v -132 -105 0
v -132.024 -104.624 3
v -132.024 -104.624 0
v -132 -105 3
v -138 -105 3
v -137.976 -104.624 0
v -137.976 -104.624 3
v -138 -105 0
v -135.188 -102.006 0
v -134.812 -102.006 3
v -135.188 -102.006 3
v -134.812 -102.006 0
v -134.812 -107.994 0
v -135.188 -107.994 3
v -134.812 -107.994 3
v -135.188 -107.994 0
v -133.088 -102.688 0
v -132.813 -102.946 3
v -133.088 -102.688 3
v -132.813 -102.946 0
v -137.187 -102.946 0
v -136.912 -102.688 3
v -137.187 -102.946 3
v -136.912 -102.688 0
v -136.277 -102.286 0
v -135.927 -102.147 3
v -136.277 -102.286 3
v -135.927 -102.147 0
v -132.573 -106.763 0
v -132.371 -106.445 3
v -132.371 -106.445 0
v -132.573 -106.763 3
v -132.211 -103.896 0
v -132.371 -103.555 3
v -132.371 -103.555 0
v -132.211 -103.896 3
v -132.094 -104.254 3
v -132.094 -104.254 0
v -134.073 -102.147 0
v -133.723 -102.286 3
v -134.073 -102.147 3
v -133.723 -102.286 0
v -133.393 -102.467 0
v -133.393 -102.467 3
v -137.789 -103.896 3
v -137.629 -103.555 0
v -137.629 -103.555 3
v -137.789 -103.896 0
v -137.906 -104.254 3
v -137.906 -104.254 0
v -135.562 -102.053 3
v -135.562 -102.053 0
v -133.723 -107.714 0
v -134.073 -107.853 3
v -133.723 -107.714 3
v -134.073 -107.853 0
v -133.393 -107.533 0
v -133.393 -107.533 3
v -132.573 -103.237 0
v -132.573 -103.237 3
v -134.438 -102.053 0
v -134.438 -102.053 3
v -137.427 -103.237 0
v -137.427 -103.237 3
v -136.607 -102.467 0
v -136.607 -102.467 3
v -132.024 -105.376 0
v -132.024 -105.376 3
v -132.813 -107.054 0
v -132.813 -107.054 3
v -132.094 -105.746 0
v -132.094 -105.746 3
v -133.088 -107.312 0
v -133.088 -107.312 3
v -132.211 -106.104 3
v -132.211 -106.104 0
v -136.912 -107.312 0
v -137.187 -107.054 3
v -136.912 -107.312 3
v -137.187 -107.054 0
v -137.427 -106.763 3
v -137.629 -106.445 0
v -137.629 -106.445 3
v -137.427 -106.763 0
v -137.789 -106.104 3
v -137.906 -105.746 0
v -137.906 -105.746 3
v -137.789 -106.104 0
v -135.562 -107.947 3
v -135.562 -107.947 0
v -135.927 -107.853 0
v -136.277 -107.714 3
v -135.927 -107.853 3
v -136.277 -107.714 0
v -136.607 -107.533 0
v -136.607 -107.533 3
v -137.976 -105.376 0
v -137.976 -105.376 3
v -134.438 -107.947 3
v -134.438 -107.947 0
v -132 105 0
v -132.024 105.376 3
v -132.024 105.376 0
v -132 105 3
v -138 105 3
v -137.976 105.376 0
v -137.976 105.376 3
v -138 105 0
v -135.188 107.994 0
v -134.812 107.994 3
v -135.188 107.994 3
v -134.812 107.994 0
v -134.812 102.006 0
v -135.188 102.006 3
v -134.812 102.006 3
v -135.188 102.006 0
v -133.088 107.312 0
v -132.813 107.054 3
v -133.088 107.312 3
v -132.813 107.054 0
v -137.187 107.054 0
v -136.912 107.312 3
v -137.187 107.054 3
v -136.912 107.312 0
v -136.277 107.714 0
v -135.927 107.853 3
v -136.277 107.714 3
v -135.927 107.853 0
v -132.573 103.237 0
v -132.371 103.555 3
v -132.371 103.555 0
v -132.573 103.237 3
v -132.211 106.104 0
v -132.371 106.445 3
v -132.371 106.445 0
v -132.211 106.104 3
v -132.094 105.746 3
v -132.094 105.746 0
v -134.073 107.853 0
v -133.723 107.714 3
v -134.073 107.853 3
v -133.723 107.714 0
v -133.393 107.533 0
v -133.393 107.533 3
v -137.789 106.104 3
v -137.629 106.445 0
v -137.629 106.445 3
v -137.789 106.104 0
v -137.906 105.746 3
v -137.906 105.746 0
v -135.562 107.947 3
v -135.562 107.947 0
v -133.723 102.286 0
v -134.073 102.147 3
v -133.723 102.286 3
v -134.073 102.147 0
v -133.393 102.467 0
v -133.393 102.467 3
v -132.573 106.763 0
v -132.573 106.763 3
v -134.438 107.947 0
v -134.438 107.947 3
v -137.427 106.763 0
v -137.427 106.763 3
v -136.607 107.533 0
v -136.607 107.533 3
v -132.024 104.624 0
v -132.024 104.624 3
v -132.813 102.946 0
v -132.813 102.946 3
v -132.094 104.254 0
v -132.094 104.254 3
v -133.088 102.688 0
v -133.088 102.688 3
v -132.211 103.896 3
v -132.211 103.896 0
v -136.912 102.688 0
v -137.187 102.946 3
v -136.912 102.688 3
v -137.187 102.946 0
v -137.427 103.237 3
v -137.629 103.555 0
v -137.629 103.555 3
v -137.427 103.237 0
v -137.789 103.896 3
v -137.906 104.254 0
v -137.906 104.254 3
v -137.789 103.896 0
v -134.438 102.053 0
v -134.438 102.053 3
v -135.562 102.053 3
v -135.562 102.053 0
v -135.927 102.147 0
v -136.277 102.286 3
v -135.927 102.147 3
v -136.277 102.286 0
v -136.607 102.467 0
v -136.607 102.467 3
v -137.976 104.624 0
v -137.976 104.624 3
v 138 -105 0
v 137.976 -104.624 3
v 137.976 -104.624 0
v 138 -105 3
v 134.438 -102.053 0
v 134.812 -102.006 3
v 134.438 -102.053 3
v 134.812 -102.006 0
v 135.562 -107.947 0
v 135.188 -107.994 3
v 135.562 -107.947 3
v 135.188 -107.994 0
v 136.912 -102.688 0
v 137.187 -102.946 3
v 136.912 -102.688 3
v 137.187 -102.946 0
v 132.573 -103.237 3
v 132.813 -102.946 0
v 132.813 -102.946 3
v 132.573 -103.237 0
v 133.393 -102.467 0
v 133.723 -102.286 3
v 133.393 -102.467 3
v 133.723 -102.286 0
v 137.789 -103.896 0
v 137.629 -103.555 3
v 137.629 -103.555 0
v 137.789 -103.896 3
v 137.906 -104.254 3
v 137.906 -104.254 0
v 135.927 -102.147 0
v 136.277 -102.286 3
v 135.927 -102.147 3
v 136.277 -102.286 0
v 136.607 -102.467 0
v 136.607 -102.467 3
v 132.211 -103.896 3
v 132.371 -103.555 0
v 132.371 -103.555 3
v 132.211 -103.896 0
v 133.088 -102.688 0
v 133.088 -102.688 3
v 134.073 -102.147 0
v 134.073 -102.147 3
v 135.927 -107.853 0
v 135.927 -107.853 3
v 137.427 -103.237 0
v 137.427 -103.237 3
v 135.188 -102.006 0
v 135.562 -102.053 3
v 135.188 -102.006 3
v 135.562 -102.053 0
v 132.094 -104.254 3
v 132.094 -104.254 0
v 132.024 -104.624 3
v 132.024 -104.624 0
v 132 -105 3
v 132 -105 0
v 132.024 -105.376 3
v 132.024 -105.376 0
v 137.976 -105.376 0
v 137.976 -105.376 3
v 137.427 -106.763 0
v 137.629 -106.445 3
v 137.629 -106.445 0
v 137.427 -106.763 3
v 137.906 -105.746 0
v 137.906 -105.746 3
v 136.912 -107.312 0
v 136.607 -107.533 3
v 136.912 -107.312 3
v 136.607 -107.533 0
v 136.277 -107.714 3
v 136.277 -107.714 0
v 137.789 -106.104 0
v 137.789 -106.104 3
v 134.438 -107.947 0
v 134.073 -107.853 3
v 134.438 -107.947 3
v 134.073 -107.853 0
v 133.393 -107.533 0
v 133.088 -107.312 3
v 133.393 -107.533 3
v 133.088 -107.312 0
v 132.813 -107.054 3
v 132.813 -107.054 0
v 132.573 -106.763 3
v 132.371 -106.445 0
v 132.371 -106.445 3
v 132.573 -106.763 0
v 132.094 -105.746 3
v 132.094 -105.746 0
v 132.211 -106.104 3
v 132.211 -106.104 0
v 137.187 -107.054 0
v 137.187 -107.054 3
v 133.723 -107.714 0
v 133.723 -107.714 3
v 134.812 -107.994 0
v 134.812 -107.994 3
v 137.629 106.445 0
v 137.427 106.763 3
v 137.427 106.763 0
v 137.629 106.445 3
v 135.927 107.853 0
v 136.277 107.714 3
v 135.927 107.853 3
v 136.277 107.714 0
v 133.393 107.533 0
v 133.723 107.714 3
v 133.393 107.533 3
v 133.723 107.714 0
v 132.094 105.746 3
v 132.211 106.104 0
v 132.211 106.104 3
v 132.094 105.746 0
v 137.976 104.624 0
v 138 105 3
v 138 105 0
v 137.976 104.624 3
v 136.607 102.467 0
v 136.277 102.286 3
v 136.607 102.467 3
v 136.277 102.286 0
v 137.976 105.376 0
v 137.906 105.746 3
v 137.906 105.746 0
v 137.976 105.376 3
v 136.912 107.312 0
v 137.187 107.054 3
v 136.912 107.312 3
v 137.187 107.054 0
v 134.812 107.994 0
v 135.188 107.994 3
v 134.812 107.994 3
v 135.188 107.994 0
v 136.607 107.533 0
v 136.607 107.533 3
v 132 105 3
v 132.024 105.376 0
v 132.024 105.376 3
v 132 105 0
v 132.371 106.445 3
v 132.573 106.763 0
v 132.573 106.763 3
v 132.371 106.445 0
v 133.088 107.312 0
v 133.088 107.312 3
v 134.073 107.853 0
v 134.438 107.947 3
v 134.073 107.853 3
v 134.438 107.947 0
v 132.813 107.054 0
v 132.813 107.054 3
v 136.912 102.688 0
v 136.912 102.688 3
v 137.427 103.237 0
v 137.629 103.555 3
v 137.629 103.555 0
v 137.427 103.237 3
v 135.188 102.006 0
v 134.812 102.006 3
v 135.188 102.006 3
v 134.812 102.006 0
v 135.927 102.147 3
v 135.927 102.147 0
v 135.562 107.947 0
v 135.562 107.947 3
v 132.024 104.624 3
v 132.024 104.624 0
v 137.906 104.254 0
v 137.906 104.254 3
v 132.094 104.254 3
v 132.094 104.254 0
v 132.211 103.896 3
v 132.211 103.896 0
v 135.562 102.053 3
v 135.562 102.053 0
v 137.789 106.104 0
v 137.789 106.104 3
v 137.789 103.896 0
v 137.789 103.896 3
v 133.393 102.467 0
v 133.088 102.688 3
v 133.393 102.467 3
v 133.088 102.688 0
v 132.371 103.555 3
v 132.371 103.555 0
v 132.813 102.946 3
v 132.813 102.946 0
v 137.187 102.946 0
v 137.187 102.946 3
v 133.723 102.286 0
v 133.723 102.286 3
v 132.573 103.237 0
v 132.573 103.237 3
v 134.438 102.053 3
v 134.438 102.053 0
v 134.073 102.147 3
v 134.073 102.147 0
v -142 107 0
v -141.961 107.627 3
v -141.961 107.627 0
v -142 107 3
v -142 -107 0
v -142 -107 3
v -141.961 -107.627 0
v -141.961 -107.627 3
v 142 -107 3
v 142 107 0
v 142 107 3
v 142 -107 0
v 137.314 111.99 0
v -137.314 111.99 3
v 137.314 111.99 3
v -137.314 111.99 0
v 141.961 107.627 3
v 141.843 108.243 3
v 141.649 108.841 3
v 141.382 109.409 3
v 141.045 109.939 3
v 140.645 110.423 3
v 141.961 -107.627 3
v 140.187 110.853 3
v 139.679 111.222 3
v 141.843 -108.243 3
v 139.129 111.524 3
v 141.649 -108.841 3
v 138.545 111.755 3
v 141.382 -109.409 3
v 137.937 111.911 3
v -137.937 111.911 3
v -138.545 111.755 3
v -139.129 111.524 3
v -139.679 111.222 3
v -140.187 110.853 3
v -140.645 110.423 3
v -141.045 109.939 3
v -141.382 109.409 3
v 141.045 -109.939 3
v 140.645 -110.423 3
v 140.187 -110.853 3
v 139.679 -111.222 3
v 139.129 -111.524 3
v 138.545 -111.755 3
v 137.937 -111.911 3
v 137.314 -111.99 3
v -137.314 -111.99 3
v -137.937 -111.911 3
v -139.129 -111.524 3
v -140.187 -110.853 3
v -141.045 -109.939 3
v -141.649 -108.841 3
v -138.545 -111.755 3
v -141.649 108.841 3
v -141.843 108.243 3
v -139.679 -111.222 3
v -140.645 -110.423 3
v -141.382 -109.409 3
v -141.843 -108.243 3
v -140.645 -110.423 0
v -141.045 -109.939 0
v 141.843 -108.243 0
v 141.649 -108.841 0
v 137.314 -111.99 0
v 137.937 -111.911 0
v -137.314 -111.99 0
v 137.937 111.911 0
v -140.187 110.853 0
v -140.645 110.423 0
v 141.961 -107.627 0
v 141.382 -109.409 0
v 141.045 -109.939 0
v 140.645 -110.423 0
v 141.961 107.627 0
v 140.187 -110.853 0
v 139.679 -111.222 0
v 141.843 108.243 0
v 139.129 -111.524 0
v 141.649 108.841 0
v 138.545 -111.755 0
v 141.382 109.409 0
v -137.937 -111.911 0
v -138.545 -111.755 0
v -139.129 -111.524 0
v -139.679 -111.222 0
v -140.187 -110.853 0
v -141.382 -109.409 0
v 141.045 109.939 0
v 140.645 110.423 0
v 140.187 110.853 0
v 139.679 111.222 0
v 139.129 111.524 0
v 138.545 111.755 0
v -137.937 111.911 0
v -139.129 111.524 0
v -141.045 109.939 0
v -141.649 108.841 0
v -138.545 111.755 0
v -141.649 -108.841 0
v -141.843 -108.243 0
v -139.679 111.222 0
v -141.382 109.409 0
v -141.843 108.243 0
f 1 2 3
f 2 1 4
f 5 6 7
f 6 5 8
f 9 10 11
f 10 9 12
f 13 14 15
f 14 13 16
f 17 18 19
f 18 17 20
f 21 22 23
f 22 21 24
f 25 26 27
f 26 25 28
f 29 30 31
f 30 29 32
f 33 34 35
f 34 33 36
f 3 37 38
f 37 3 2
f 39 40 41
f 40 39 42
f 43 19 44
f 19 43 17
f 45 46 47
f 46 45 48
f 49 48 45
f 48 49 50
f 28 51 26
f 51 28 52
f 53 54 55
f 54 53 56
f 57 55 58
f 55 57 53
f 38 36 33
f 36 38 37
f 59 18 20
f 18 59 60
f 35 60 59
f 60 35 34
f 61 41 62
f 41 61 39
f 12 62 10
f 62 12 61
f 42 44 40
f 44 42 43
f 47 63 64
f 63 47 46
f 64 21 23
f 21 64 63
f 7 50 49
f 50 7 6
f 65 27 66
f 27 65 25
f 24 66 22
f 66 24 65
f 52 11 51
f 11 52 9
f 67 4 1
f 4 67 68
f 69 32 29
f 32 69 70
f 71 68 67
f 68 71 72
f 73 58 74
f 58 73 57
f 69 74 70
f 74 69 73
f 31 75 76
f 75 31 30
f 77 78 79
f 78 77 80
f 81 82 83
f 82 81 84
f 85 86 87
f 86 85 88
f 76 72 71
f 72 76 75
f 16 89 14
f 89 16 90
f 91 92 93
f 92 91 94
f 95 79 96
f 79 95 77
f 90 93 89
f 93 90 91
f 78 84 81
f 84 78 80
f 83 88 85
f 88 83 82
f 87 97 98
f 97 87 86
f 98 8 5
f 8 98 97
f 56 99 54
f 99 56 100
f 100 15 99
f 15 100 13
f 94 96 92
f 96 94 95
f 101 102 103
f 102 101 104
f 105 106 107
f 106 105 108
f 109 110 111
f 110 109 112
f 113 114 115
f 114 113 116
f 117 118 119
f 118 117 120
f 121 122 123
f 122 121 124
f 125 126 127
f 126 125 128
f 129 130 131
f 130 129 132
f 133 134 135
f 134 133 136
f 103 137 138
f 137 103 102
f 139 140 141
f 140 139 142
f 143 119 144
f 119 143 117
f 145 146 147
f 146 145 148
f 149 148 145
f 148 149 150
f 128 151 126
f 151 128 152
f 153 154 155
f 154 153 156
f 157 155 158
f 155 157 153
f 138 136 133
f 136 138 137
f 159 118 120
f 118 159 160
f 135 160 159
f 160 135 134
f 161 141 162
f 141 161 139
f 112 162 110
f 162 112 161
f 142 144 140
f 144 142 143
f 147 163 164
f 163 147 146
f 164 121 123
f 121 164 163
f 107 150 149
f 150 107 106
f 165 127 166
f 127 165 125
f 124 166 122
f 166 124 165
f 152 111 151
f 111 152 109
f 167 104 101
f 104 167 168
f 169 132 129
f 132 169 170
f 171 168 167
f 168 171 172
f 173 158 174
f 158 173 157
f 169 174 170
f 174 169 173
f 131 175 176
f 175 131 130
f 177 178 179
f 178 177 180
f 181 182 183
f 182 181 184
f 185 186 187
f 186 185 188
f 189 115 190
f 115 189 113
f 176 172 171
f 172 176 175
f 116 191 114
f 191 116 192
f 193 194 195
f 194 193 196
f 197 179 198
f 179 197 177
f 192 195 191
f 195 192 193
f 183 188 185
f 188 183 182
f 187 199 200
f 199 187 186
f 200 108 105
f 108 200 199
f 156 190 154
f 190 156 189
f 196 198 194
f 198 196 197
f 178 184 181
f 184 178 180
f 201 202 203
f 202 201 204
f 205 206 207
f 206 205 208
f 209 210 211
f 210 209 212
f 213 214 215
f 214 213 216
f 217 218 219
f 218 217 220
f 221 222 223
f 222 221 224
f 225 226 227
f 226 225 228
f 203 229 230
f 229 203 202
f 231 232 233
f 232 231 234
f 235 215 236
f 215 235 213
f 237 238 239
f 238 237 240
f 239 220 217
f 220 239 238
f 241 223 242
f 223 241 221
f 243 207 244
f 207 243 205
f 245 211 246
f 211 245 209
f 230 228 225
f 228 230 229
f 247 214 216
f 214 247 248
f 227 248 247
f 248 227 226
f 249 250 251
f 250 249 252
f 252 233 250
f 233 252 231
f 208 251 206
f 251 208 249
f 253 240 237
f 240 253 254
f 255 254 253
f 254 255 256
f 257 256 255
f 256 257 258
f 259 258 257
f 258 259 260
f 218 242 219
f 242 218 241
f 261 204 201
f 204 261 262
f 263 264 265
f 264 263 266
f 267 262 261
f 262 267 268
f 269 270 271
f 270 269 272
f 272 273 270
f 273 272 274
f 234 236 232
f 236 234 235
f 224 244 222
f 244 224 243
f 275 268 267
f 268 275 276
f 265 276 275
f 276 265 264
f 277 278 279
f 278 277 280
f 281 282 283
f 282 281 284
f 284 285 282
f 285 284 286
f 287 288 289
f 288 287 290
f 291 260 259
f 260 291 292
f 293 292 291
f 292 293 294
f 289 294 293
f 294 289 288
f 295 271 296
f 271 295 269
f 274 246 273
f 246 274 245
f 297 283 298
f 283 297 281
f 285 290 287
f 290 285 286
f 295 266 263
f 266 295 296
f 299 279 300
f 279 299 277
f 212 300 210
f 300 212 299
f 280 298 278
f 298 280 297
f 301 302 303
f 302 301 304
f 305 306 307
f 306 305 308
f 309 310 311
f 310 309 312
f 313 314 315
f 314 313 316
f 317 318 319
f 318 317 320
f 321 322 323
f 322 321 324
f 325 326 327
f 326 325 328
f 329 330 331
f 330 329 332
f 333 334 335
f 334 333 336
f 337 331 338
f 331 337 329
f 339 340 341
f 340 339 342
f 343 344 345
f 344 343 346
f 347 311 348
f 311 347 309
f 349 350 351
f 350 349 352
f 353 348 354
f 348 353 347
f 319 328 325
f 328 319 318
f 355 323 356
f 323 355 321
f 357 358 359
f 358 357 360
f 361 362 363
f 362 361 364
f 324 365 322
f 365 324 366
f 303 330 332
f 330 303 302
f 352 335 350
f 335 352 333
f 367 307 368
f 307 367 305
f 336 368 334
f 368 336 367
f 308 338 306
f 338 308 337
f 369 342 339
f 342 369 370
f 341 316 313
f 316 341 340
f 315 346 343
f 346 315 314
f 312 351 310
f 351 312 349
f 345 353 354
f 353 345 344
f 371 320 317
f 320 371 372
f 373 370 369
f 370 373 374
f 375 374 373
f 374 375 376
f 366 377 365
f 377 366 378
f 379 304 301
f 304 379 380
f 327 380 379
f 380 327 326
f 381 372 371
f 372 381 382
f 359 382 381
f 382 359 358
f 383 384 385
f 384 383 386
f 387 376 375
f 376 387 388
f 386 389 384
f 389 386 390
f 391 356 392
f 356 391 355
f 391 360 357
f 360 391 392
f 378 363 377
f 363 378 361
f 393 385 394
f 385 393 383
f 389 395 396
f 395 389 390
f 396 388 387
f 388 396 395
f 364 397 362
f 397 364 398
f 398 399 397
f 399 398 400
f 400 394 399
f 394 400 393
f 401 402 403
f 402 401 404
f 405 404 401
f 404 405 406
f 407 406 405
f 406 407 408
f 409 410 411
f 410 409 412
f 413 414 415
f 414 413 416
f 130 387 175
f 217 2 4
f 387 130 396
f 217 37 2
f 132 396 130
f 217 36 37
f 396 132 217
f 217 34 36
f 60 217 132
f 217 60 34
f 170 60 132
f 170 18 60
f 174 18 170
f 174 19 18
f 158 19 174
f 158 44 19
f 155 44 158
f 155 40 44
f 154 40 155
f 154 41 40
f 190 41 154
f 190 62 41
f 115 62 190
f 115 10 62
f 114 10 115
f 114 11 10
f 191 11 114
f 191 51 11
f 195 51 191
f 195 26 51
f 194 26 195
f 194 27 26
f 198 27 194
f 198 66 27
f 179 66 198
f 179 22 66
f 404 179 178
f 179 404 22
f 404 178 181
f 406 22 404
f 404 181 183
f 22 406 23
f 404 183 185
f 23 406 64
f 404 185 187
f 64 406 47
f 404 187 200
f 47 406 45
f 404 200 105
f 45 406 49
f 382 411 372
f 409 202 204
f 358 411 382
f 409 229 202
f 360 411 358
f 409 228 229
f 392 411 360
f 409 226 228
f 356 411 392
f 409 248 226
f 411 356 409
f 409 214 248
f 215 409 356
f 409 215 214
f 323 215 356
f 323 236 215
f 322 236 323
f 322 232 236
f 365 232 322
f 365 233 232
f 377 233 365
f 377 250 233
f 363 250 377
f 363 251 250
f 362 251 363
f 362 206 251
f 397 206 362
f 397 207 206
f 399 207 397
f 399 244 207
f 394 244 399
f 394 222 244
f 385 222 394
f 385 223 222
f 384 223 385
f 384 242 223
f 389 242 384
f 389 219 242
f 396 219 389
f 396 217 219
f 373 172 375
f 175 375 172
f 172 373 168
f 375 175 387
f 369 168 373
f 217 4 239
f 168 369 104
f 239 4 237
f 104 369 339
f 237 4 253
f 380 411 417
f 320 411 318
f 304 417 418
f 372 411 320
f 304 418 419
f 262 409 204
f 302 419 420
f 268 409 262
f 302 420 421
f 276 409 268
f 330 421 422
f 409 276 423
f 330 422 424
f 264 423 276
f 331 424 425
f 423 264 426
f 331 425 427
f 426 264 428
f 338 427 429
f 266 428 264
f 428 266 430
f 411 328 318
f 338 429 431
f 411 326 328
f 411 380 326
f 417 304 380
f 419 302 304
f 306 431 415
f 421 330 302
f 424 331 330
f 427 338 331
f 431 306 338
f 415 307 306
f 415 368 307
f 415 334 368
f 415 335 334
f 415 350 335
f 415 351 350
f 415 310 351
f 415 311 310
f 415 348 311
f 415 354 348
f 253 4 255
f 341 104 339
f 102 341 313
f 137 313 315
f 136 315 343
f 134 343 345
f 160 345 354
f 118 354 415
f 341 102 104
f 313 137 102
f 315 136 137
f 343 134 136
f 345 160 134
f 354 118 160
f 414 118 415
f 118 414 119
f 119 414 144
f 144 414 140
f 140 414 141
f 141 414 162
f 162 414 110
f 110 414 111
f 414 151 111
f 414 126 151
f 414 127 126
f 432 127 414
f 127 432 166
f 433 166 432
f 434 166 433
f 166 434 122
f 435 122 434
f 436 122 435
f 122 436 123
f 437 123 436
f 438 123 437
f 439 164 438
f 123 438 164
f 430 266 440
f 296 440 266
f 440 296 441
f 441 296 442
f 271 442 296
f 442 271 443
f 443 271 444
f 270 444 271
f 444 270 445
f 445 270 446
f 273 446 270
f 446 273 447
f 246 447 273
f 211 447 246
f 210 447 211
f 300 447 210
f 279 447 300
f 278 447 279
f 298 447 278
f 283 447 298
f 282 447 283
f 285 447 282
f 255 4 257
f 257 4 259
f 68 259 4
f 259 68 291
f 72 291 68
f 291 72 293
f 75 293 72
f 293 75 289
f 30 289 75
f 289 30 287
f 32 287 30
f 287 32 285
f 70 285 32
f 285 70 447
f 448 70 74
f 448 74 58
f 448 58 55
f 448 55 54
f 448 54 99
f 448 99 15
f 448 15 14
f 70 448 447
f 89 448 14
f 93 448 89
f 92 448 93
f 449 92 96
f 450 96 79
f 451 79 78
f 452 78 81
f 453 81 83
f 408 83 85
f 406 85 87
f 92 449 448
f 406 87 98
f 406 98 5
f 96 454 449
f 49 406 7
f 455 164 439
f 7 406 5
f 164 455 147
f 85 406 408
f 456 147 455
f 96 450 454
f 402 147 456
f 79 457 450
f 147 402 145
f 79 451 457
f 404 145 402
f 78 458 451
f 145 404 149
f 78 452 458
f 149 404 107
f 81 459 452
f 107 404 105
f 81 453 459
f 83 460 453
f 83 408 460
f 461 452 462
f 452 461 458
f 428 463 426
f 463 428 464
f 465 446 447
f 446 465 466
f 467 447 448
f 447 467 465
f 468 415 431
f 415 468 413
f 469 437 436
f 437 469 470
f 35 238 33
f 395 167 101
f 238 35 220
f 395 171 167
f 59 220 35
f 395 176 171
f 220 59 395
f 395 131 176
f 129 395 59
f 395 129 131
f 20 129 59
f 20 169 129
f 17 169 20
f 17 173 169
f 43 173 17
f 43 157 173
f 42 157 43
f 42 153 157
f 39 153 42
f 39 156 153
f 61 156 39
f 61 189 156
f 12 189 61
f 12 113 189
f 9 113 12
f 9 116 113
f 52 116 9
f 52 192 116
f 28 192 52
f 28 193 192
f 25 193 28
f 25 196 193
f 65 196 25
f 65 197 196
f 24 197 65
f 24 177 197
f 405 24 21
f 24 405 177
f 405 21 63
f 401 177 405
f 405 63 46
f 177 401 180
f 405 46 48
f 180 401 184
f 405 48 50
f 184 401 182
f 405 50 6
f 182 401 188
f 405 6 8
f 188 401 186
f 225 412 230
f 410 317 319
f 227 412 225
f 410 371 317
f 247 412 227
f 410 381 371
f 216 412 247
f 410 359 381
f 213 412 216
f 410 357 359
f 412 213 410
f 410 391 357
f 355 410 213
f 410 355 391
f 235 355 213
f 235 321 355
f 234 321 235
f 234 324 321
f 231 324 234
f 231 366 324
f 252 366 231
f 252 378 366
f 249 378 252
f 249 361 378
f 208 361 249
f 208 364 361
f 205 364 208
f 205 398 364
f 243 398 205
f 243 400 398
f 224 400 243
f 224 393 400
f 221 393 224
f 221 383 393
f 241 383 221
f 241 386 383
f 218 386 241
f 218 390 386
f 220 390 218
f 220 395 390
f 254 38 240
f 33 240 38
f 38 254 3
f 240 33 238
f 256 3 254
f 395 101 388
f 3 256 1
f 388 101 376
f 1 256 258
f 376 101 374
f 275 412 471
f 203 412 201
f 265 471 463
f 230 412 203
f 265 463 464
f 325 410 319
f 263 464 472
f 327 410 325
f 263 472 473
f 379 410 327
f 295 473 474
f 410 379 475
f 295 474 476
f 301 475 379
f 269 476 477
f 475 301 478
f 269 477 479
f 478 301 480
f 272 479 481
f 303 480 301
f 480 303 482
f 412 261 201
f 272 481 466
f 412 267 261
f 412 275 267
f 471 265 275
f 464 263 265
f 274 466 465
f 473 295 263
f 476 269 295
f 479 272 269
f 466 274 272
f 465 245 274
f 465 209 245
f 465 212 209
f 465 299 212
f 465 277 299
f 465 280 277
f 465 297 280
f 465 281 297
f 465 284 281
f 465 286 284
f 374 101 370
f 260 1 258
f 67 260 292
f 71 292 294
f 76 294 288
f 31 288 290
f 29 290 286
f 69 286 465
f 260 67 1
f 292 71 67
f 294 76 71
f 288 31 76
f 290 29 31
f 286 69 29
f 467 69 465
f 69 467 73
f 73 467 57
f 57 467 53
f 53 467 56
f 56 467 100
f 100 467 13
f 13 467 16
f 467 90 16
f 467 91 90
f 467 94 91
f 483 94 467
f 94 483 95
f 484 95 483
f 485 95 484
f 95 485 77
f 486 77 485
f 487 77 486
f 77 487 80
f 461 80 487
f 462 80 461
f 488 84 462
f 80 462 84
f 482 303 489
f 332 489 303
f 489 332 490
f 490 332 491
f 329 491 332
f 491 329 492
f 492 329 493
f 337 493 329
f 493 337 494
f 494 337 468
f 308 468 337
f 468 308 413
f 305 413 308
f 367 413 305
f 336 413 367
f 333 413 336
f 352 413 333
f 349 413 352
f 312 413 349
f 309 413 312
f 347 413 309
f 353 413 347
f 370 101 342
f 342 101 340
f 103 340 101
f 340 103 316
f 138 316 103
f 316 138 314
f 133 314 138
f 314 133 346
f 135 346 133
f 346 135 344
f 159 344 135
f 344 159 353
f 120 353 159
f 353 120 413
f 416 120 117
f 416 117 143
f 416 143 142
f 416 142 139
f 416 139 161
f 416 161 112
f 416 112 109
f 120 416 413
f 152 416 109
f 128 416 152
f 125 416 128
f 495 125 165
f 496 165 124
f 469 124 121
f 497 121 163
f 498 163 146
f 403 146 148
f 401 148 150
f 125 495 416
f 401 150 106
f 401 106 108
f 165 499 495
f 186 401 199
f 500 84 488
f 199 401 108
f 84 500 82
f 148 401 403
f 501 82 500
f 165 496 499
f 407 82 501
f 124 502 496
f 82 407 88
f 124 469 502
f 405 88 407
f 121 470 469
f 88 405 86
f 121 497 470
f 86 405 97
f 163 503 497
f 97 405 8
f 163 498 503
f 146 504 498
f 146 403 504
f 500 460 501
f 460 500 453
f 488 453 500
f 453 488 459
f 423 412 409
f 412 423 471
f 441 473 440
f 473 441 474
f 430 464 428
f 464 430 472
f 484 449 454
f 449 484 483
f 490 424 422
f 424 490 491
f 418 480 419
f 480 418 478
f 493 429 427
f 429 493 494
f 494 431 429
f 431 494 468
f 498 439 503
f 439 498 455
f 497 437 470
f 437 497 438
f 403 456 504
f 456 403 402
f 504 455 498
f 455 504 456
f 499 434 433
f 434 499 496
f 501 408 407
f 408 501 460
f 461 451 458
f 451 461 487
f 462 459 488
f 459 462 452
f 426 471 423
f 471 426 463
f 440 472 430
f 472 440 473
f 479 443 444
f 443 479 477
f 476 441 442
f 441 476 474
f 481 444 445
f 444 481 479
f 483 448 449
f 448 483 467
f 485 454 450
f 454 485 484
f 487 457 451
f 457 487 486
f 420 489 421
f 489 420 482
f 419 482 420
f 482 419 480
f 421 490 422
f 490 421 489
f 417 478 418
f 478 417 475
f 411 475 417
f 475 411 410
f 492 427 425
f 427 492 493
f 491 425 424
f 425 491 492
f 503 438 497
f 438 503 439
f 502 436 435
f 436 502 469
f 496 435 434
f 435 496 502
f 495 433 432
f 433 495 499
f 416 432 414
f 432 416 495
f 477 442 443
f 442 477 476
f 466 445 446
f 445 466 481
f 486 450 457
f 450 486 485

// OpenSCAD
$fn = 50;


difference() {
	union() {
		hull() {
			translate(v = [-137.0000000000, 107.0000000000, 0]) {
				cylinder(h = 3, r = 5);
			}
			translate(v = [137.0000000000, 107.0000000000, 0]) {
				cylinder(h = 3, r = 5);
			}
			translate(v = [-137.0000000000, -107.0000000000, 0]) {
				cylinder(h = 3, r = 5);
			}
			translate(v = [137.0000000000, -107.0000000000, 0]) {
				cylinder(h = 3, r = 5);
			}
		}
	}
	union() {
		translate(v = [-135.0000000000, -105.0000000000, -100.0000000000]) {
			cylinder(h = 200, r = 3.0000000000);
		}
		translate(v = [-135.0000000000, 105.0000000000, -100.0000000000]) {
			cylinder(h = 200, r = 3.0000000000);
		}
		translate(v = [135.0000000000, -105.0000000000, -100.0000000000]) {
			cylinder(h = 200, r = 3.0000000000);
		}
		translate(v = [135.0000000000, 105.0000000000, -100.0000000000]) {
			cylinder(h = 200, r = 3.0000000000);
		}
	}
}
